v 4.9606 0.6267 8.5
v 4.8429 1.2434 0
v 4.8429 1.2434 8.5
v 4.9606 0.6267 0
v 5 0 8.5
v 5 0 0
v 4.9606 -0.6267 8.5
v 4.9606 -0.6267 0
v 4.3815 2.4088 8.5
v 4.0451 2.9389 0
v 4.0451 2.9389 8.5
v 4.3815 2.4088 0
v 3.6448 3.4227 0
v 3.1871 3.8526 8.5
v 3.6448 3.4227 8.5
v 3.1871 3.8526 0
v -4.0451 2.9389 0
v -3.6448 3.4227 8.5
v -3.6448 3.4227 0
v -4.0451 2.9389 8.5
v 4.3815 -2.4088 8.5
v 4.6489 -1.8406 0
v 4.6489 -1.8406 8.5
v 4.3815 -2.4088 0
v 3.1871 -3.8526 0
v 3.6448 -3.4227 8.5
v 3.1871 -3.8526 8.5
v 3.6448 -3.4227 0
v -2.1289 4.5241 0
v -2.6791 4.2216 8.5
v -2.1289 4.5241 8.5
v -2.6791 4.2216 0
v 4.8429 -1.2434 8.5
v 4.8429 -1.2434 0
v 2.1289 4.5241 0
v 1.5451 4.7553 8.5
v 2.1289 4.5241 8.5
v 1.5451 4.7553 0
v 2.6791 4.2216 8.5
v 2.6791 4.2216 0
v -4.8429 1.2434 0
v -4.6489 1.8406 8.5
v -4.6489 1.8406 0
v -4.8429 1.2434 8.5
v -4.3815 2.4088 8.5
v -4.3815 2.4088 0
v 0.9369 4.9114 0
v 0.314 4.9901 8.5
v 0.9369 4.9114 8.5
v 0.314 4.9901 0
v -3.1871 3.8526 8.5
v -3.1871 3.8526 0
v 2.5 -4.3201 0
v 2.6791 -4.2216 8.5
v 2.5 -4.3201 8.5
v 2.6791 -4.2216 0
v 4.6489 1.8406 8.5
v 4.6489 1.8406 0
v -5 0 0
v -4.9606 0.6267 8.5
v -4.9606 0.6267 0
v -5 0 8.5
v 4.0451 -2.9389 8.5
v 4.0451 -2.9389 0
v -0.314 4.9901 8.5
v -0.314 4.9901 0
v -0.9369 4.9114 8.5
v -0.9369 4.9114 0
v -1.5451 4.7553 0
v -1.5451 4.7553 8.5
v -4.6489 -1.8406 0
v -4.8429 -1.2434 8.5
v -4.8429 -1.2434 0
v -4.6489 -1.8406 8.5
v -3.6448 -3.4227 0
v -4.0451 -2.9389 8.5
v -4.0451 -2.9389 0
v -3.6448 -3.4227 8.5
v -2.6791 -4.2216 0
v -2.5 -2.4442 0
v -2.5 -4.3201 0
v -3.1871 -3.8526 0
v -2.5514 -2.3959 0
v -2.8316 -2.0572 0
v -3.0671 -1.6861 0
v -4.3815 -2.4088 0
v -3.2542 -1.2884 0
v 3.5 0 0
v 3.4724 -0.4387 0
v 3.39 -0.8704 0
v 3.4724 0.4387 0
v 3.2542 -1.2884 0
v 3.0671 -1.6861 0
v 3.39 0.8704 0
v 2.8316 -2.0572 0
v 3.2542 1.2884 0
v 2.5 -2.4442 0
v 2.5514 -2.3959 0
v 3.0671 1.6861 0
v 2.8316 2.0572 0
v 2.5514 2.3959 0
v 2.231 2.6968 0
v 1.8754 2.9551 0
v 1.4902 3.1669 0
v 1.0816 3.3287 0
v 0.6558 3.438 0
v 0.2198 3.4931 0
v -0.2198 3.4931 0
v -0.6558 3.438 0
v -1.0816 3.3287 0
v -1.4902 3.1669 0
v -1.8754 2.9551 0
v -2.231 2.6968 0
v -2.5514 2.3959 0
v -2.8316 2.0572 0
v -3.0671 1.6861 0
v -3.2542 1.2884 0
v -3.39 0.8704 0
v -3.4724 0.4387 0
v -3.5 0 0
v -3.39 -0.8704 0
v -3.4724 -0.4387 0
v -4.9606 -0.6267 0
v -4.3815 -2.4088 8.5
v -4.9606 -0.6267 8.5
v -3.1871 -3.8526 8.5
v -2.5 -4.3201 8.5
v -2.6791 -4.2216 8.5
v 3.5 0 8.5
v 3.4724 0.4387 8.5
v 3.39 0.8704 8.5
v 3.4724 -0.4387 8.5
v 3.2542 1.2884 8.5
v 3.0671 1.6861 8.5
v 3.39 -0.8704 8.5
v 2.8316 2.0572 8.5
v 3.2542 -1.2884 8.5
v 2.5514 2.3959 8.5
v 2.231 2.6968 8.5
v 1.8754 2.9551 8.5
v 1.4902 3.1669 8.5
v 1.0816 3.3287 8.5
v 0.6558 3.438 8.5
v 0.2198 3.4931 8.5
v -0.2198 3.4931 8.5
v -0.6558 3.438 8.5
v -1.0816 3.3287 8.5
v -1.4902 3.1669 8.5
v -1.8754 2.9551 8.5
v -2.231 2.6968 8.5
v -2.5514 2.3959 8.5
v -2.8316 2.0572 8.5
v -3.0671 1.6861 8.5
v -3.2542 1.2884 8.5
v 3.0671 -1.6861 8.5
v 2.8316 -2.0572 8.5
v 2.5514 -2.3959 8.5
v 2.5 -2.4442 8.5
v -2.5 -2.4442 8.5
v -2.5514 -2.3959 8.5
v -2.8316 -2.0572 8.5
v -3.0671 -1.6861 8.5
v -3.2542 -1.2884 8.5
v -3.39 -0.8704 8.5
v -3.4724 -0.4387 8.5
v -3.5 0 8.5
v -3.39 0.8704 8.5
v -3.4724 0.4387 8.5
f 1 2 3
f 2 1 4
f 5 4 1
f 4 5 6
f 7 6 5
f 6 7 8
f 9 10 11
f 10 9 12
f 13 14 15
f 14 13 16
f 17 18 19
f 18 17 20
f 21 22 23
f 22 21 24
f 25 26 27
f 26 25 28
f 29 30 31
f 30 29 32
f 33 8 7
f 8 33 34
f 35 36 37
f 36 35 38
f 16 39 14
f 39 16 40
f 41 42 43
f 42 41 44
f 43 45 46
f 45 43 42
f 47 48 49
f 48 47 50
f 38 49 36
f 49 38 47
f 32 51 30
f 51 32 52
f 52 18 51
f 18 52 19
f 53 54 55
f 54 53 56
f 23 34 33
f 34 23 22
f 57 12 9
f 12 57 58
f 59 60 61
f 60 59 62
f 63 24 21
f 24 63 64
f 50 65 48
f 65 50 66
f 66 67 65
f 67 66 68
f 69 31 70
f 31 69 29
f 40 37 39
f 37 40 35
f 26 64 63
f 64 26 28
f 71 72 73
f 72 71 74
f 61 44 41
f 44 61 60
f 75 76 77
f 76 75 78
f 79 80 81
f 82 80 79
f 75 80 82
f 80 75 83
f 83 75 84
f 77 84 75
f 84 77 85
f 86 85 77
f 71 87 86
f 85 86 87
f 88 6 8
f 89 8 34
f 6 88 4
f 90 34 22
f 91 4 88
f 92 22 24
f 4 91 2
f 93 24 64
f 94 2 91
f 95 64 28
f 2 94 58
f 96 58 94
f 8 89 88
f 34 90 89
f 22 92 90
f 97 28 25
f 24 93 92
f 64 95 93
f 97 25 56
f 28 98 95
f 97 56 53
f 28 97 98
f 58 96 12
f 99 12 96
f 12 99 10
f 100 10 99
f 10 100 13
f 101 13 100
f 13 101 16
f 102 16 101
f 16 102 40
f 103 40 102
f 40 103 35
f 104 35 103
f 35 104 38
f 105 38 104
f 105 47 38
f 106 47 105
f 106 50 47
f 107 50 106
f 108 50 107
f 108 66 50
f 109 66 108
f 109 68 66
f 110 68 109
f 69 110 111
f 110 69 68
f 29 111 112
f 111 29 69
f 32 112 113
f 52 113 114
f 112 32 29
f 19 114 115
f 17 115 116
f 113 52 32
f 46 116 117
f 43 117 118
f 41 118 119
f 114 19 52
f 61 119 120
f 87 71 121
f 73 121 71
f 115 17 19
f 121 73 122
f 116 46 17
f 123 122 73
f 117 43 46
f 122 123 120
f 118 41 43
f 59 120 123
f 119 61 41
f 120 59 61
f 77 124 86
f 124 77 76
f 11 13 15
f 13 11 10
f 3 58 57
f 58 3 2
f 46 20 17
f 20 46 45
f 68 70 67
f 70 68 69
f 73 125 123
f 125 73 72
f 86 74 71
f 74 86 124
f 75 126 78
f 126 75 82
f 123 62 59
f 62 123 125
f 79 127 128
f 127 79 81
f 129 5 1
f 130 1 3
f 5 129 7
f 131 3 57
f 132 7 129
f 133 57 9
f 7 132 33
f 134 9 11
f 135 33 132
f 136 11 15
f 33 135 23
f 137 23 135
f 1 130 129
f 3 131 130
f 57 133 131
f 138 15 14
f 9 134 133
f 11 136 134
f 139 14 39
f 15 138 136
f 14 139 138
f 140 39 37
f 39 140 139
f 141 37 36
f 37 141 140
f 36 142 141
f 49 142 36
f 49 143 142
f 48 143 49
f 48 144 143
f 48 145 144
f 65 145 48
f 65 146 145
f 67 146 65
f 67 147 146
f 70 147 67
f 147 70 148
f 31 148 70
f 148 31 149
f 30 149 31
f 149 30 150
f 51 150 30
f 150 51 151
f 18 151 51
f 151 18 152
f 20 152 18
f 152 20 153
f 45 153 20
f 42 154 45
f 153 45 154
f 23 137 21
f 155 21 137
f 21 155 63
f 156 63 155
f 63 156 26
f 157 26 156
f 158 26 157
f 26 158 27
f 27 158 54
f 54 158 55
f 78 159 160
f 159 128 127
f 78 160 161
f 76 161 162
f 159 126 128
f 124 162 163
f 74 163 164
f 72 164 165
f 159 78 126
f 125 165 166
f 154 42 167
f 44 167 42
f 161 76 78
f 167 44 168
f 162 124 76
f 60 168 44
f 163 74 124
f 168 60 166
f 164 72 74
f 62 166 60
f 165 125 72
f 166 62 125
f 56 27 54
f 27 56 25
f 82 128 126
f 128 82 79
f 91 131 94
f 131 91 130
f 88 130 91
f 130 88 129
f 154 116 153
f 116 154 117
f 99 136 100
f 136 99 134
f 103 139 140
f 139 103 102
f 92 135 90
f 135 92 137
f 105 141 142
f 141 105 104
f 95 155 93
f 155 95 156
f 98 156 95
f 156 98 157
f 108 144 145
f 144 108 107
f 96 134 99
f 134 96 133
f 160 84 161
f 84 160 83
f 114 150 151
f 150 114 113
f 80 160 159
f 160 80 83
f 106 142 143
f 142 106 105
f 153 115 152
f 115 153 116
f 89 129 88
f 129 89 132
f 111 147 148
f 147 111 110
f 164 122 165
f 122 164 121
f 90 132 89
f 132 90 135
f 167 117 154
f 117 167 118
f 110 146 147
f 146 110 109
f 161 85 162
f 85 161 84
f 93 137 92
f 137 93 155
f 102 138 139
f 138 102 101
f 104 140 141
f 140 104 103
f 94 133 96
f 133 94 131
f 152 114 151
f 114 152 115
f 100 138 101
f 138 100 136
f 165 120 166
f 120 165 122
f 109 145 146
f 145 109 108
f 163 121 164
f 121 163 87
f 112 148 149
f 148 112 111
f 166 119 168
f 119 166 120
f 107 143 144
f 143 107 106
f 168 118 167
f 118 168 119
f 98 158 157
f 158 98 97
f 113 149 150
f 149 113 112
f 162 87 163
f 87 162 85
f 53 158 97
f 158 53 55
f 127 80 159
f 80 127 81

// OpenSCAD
R=7/2;
H=8.5;
difference() {
    cylinder(r=R+1.5,H, $fn=50);
    cylinder(r=R,H, $fn=50);
    translate([0,-R,H/2]) cube([5,5,H],center=true,$fn=50);
}
